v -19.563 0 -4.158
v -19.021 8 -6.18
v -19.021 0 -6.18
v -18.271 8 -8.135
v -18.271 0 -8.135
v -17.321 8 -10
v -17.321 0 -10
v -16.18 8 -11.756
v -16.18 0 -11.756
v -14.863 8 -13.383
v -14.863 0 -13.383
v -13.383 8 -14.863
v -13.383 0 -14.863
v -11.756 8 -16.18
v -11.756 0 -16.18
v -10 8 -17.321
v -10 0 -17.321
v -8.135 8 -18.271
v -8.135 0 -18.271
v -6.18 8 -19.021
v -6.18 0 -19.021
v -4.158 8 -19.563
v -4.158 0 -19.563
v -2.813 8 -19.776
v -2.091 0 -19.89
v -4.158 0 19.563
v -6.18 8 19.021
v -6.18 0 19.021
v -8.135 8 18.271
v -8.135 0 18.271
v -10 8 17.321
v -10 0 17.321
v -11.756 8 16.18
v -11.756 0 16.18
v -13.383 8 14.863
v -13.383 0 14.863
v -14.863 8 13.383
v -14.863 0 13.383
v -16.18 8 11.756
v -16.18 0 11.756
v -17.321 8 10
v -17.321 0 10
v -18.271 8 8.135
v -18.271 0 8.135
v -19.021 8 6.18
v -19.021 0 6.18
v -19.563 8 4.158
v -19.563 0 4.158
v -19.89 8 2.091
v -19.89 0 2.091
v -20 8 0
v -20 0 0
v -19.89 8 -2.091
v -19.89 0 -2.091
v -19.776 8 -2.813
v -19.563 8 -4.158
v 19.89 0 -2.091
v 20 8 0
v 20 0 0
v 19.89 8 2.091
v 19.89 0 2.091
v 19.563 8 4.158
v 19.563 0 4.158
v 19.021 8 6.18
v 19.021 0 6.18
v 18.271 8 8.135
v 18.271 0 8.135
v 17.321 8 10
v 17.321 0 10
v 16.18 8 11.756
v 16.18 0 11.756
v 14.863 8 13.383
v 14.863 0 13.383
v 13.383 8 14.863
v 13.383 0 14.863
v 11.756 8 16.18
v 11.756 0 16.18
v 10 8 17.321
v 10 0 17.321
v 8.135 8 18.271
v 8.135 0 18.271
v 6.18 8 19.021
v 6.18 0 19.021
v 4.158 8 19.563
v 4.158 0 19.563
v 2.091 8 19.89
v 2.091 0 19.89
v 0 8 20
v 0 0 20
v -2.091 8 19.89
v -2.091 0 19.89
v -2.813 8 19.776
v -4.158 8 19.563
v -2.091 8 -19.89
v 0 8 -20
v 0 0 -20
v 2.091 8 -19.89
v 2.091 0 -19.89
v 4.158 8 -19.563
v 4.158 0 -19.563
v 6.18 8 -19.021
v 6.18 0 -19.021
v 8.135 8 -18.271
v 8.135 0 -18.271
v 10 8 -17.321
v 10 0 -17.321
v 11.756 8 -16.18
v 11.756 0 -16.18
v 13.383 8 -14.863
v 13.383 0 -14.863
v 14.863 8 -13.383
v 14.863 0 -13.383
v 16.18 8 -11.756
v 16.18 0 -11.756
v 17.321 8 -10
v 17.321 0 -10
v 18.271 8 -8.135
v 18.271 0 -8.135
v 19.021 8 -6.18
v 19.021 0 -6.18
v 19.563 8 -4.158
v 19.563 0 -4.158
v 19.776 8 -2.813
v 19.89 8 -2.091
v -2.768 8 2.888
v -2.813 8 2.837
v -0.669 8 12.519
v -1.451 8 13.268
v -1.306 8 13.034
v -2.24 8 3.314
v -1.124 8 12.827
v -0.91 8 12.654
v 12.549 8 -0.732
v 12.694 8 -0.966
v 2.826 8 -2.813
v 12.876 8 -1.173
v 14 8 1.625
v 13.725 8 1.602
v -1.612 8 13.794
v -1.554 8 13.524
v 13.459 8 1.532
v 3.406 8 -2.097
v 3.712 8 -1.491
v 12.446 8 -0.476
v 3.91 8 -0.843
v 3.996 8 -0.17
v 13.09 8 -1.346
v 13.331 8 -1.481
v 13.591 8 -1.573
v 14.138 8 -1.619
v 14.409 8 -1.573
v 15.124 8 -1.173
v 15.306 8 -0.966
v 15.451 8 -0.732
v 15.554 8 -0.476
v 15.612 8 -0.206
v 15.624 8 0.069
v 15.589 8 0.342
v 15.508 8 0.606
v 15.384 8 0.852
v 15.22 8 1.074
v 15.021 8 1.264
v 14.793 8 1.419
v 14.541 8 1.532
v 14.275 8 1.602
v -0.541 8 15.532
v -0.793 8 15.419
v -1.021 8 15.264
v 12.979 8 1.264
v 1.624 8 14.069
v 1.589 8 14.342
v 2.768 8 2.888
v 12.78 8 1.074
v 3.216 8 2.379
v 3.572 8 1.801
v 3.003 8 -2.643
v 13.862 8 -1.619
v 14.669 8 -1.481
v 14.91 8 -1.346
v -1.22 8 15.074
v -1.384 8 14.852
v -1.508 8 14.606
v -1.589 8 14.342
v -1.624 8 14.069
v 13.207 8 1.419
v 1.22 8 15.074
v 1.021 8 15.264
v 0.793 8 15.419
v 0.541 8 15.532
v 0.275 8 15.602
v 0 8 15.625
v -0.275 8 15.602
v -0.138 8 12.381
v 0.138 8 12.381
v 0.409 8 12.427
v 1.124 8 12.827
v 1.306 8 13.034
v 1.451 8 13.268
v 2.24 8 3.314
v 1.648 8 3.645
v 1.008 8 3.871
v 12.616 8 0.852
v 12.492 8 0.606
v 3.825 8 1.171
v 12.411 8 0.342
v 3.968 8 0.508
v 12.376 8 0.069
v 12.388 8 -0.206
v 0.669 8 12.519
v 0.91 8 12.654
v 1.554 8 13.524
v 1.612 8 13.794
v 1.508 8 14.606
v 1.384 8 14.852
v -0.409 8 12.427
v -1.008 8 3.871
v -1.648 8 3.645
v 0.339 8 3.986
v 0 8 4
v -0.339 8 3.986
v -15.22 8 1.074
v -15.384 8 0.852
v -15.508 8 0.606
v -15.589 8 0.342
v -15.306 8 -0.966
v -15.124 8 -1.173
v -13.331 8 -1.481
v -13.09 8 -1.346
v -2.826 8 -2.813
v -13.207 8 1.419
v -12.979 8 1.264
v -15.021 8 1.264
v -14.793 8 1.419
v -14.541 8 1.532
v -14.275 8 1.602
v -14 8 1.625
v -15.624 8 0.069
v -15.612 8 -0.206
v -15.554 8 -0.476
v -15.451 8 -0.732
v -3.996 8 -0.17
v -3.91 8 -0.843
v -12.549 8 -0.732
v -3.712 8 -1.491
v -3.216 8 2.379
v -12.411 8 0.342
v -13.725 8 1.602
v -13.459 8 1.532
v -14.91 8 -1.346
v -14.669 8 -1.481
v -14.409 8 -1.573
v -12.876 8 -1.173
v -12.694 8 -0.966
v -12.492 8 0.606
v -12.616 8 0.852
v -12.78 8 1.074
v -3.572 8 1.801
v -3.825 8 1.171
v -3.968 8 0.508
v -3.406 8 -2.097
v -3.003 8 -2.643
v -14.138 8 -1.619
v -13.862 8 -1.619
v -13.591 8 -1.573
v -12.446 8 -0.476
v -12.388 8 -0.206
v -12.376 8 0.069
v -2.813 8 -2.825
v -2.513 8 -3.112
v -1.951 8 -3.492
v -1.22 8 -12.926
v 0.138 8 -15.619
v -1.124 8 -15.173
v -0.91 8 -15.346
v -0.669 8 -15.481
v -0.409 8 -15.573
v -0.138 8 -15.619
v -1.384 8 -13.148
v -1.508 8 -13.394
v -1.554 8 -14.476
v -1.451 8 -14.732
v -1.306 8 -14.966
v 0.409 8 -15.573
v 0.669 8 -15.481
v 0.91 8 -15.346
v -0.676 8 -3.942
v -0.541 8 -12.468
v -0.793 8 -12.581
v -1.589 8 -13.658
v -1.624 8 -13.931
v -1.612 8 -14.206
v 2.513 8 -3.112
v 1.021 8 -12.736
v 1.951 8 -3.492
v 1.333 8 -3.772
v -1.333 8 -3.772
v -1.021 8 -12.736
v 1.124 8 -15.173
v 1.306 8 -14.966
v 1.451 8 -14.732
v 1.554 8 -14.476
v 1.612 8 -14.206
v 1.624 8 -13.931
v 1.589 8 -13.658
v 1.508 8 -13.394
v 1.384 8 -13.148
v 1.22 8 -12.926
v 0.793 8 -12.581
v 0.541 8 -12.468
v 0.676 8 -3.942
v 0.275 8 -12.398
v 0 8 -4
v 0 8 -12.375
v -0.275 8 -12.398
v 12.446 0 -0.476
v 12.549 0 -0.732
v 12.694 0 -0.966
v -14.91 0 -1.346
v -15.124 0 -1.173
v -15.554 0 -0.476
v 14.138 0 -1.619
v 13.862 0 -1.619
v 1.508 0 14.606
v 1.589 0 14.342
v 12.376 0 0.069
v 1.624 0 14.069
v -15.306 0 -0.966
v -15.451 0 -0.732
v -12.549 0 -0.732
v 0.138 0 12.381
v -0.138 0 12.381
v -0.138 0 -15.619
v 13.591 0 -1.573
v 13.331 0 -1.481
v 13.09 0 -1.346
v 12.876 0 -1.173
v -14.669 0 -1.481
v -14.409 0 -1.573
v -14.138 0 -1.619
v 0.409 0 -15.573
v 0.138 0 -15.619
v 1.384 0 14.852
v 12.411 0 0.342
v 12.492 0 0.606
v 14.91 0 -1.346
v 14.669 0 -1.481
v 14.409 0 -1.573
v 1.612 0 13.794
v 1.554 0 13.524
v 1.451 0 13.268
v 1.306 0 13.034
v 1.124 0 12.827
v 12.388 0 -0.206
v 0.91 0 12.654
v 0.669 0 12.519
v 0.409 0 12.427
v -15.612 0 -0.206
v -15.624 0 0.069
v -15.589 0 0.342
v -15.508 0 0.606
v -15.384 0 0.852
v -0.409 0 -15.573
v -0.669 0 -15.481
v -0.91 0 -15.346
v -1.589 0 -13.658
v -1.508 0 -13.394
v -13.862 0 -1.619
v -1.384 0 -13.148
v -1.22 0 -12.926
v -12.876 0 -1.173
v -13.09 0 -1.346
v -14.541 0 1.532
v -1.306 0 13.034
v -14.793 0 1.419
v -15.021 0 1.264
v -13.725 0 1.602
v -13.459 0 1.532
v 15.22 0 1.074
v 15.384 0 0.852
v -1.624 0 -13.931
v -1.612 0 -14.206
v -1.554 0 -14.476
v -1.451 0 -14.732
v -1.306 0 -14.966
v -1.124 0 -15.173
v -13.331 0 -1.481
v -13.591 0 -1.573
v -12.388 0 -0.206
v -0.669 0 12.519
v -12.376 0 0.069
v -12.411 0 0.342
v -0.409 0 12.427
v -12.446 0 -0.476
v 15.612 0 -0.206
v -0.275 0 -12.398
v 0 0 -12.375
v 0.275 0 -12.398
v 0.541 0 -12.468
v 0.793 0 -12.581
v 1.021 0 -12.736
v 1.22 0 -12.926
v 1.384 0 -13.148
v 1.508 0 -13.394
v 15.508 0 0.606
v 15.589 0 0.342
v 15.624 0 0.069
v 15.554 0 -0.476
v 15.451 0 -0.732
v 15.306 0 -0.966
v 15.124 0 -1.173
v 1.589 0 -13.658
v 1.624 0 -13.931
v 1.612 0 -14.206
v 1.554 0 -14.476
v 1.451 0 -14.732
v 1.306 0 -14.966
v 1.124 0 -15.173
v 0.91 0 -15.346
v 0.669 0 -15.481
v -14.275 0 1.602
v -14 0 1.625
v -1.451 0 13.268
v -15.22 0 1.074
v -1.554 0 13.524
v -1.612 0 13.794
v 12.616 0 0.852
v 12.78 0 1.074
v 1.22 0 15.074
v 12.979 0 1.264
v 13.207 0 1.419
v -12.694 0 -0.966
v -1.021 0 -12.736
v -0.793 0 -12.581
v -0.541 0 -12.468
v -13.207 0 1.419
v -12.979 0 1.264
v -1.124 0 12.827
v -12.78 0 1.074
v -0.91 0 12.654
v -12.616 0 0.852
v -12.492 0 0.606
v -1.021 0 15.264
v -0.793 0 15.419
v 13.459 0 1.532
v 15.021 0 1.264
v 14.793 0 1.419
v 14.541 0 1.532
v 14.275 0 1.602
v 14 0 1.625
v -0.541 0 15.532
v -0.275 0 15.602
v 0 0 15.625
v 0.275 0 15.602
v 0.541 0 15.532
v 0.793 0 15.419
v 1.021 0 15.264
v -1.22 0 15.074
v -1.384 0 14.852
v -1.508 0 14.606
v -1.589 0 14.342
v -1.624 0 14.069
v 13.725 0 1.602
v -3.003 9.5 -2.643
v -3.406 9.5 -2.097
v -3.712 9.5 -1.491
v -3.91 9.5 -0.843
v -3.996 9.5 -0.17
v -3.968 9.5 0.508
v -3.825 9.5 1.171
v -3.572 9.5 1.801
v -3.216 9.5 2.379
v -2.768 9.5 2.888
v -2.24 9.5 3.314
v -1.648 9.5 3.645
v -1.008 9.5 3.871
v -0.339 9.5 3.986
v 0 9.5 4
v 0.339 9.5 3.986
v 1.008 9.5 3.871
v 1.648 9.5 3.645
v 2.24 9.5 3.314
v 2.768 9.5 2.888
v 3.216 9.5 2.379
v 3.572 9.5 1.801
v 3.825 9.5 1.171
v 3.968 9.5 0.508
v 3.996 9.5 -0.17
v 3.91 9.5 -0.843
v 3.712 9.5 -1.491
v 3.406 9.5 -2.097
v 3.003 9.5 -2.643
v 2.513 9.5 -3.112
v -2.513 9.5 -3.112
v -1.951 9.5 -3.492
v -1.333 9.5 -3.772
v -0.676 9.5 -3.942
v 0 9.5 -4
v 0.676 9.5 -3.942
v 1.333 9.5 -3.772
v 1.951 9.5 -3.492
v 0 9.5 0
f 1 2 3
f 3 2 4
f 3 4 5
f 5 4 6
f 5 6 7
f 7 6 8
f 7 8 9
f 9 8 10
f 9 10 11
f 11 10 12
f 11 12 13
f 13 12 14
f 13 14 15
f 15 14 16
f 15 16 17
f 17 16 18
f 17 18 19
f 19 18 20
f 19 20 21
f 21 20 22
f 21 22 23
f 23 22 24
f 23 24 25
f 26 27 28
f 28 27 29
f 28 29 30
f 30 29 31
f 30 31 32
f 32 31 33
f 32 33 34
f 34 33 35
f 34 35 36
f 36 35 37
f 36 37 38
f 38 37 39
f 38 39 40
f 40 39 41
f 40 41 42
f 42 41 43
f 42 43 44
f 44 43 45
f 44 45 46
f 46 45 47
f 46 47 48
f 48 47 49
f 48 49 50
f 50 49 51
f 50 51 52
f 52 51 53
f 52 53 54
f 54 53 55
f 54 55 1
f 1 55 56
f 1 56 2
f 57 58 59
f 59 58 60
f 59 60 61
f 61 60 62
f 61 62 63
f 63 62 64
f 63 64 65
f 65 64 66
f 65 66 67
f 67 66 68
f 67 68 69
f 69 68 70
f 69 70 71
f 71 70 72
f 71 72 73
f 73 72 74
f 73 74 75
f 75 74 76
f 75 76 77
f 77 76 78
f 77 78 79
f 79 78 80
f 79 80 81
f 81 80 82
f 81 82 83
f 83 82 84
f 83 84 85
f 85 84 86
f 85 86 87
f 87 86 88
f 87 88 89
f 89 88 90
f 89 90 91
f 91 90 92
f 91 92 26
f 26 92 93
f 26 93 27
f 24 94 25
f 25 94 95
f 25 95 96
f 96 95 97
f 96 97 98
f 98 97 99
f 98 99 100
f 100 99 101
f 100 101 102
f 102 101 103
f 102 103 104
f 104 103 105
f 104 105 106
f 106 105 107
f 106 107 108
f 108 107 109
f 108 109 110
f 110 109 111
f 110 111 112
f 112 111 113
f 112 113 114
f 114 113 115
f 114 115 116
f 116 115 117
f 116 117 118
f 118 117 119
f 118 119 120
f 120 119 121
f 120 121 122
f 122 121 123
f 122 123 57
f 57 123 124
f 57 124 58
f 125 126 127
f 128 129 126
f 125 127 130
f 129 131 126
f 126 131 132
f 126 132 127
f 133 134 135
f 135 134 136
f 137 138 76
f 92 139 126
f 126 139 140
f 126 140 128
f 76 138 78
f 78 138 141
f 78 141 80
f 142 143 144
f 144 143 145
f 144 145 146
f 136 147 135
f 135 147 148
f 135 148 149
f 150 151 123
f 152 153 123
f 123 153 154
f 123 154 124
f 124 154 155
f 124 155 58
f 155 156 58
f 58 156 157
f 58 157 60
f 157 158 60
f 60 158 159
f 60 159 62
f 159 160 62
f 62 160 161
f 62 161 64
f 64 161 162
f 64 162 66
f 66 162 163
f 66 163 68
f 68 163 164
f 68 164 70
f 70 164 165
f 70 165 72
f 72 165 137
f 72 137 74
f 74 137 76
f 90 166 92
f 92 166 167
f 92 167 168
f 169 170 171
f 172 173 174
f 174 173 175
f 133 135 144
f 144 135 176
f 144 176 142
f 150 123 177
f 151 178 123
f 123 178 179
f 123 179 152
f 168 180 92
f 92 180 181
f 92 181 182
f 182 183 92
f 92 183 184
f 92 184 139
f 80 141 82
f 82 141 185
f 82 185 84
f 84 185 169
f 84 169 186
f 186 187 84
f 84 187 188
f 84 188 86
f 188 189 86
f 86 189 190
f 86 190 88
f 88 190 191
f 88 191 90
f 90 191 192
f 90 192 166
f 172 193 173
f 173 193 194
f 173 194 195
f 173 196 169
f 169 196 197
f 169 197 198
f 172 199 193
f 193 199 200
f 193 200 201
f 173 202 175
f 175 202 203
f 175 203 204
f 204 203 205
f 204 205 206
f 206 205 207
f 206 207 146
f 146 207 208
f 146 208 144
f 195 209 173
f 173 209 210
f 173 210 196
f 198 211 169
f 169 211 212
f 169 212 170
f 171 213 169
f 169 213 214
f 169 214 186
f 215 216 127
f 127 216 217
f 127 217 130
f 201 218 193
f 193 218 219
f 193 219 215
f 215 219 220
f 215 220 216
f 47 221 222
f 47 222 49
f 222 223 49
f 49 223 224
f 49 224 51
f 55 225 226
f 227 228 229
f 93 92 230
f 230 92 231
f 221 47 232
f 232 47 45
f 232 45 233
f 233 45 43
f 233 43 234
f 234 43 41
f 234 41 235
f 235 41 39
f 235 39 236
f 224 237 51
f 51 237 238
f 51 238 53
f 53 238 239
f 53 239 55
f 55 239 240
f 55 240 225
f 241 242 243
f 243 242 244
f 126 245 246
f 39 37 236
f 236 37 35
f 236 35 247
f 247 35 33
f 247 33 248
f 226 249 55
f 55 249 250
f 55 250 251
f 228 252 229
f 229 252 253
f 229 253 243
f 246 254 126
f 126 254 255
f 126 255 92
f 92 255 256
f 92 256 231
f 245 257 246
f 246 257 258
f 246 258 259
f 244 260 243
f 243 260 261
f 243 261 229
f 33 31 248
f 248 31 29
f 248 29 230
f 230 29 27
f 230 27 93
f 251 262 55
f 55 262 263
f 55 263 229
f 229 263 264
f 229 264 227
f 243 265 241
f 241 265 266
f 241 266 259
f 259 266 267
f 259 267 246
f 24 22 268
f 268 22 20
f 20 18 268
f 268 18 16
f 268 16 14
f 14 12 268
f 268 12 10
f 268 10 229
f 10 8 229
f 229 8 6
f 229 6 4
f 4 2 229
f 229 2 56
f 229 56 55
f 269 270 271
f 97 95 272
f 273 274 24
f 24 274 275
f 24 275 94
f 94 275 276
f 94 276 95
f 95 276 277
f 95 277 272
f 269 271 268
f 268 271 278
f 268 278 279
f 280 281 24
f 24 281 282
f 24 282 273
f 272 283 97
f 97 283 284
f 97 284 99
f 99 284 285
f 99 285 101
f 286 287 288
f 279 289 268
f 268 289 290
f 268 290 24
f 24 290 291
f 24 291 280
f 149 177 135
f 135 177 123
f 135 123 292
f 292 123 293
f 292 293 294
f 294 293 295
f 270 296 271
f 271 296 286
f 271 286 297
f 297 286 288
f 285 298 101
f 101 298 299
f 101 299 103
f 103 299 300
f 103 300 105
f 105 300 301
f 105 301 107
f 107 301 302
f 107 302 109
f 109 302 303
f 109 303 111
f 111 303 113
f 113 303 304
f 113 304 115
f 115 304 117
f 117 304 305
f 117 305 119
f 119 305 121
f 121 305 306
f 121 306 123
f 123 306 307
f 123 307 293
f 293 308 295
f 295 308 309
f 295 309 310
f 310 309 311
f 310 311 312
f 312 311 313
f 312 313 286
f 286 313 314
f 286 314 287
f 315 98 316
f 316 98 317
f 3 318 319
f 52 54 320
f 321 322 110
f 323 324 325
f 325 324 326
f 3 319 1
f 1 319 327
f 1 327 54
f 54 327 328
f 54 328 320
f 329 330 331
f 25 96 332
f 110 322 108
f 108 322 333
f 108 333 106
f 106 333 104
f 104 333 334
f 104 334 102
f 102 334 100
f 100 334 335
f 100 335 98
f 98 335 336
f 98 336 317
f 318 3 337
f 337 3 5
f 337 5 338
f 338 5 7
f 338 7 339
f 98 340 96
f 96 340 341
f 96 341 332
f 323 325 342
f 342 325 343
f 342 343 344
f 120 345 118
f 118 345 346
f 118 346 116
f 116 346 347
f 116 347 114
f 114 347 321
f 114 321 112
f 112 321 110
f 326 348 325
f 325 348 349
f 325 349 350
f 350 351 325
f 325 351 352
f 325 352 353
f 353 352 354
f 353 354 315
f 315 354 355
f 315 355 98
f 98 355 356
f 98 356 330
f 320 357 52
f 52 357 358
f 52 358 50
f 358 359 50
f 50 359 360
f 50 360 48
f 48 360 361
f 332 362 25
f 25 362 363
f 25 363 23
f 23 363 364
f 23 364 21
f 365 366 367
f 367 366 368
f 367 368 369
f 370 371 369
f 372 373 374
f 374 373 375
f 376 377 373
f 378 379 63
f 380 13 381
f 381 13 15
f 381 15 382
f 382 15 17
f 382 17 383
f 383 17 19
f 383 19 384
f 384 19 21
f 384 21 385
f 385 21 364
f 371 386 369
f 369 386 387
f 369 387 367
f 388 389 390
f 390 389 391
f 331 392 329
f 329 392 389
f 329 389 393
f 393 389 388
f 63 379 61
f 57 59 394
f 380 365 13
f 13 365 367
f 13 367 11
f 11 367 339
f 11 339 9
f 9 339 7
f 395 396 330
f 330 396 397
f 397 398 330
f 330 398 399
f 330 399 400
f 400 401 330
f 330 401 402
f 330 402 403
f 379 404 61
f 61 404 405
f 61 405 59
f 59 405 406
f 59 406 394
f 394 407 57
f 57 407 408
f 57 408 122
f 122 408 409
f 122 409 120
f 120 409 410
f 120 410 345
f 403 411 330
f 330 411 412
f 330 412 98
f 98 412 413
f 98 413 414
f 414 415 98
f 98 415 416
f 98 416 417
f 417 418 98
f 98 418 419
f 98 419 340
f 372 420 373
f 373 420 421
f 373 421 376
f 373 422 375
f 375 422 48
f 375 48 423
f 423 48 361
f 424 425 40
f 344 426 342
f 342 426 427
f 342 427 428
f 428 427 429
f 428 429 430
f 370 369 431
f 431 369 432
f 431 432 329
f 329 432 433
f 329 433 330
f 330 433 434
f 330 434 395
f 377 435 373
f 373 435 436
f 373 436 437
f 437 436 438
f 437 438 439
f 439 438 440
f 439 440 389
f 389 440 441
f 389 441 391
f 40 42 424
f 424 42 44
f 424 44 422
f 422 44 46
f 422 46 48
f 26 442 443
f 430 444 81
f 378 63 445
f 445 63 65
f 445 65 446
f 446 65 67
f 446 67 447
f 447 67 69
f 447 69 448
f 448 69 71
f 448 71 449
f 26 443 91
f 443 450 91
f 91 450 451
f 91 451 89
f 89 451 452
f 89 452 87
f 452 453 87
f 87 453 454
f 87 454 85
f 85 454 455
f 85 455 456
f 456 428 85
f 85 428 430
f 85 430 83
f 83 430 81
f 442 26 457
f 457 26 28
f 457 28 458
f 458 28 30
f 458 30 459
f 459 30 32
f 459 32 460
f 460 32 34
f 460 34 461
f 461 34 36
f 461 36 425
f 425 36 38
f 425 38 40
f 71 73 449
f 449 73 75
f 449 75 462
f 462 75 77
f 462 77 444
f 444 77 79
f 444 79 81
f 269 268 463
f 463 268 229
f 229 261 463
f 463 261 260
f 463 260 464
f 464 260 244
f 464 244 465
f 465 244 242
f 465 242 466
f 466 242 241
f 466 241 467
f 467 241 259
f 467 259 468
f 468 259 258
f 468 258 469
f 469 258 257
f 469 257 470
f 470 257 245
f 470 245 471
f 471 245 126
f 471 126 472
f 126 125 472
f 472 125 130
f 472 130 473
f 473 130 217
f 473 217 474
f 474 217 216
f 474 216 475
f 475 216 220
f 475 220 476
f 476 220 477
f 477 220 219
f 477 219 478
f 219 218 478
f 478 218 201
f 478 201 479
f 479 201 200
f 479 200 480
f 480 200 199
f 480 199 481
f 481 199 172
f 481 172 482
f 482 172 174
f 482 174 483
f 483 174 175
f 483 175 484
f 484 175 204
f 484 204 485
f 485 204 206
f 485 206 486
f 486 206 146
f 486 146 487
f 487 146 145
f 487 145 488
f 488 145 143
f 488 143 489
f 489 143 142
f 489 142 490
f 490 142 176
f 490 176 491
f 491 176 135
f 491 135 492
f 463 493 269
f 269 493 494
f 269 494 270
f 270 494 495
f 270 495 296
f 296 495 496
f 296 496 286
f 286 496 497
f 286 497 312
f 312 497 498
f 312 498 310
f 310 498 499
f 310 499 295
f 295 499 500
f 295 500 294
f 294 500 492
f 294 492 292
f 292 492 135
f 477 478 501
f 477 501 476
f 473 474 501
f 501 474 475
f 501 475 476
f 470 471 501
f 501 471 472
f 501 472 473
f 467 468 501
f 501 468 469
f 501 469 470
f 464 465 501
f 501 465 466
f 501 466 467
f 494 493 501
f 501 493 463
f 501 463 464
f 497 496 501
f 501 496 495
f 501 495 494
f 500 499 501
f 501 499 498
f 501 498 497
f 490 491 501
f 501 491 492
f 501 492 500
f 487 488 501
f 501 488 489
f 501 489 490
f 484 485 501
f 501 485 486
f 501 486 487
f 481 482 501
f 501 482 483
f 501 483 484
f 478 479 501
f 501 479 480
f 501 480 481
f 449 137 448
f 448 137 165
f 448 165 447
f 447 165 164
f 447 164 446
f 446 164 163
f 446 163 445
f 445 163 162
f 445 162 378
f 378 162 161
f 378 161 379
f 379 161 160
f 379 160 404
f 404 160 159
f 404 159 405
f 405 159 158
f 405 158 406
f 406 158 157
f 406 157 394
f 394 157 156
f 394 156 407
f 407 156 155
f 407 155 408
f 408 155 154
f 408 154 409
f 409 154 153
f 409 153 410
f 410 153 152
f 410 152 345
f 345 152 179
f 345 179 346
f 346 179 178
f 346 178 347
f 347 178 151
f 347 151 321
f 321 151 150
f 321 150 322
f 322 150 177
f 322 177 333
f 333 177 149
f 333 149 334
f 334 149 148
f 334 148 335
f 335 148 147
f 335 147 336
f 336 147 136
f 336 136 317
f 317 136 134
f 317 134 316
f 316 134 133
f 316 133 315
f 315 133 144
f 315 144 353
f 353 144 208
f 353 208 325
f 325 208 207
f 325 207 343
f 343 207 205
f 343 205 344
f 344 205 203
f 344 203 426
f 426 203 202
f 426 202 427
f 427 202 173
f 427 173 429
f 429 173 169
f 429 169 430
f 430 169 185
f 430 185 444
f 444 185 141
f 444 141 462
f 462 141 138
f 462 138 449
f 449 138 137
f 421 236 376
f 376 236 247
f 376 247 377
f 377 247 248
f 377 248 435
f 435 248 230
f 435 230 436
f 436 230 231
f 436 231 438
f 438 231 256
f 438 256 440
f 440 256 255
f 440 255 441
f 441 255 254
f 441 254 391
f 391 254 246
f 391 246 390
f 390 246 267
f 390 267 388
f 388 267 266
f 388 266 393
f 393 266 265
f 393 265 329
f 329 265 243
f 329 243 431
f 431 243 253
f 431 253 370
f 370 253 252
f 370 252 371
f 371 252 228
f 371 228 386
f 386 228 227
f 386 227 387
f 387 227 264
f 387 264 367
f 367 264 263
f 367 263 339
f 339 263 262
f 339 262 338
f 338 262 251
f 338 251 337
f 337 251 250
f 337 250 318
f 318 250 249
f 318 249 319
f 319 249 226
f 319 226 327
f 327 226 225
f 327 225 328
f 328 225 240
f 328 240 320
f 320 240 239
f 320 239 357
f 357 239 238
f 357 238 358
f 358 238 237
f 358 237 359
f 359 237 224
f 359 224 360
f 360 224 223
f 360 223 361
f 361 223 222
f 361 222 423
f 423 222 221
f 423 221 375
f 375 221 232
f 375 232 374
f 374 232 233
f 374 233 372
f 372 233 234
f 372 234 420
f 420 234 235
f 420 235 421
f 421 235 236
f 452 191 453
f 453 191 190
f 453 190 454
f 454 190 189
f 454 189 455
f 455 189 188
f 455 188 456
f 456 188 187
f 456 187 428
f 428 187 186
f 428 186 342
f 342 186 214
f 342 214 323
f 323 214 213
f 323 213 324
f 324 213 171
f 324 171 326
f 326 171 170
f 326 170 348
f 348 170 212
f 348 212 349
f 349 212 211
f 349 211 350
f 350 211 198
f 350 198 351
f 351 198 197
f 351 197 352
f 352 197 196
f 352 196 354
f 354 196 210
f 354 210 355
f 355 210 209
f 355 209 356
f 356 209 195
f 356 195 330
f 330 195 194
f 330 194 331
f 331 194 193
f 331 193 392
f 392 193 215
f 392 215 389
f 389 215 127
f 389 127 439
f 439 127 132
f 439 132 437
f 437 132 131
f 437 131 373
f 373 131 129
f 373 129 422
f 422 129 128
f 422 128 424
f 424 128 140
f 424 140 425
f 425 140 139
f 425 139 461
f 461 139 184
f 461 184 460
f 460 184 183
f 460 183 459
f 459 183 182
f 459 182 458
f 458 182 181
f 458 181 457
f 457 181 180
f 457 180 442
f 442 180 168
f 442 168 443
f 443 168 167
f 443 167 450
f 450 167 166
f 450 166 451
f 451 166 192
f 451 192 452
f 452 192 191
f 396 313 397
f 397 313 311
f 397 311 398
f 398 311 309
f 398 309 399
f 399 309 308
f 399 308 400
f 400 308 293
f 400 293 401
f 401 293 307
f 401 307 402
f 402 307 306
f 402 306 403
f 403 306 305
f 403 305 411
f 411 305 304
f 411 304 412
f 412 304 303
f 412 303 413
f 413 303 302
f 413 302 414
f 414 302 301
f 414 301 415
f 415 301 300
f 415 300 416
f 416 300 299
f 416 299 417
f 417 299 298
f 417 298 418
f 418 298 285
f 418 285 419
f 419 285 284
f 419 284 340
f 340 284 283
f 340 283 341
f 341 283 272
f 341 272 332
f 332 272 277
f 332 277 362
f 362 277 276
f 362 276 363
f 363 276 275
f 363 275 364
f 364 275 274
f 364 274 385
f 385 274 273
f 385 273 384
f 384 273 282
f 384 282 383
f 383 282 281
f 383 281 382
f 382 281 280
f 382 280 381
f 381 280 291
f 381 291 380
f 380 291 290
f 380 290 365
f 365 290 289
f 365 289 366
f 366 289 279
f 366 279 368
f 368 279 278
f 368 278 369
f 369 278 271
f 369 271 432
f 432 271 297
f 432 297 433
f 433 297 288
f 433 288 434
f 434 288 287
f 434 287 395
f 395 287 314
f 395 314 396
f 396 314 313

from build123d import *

# Parameters (mm, degrees)
CROQUIS3_R              = 20
SALIENTE_EXTRUIR1_DEPTH = 8
SALIENTE_EXTRUIR3_START = 8
CROQUIS4_R              = 4
SALIENTE_EXTRUIR3_DEPTH = 1.5
CROQUIS7_R              = 1.625
CORTAR_EXTRUIR2_DEPTH   = 30.393876913


with BuildPart() as part:
    # Croquis3 → Saliente-Extruir1 (new body)
    with BuildSketch(Plane(origin=(0, 0, 0), x_dir=(1, 0, 0), z_dir=(0, 1, 0))):
        with Locations(Location((0, 0, 0), (0, 0, 270))):
            Circle(CROQUIS3_R)
    extrude(amount=SALIENTE_EXTRUIR1_DEPTH)

    # Croquis4 → Saliente-Extruir3 (add)
    with BuildSketch(Plane(origin=(0, 0, 0), x_dir=(1, 0, 0), z_dir=(0, 1, 0)).offset(SALIENTE_EXTRUIR3_START)):
        with Locations(Location((0, 0, 0), (0, 0, 270))):
            Circle(CROQUIS4_R)
    extrude(amount=SALIENTE_EXTRUIR3_DEPTH)

    # Croquis7 → Cortar-Extruir2 (cut, through all)
    with BuildSketch(Plane(origin=(0, 8, 0), x_dir=(1, 0, 0), z_dir=(0, 1, 0))):
        with Locations(Location((-14, 0, 0), (0, 0, 270))):
            Circle(CROQUIS7_R)
        with Locations(Location((14, 0, 0), (0, 0, 270))):
            Circle(CROQUIS7_R)
        with Locations(Location((0, 14, 0), (0, 0, 270))):
            Circle(CROQUIS7_R)
        with Locations(Location((0, -14, 0), (0, 0, 270))):
            Circle(CROQUIS7_R)
    extrude(amount=-CORTAR_EXTRUIR2_DEPTH, mode=Mode.SUBTRACT)


solid = part.part
